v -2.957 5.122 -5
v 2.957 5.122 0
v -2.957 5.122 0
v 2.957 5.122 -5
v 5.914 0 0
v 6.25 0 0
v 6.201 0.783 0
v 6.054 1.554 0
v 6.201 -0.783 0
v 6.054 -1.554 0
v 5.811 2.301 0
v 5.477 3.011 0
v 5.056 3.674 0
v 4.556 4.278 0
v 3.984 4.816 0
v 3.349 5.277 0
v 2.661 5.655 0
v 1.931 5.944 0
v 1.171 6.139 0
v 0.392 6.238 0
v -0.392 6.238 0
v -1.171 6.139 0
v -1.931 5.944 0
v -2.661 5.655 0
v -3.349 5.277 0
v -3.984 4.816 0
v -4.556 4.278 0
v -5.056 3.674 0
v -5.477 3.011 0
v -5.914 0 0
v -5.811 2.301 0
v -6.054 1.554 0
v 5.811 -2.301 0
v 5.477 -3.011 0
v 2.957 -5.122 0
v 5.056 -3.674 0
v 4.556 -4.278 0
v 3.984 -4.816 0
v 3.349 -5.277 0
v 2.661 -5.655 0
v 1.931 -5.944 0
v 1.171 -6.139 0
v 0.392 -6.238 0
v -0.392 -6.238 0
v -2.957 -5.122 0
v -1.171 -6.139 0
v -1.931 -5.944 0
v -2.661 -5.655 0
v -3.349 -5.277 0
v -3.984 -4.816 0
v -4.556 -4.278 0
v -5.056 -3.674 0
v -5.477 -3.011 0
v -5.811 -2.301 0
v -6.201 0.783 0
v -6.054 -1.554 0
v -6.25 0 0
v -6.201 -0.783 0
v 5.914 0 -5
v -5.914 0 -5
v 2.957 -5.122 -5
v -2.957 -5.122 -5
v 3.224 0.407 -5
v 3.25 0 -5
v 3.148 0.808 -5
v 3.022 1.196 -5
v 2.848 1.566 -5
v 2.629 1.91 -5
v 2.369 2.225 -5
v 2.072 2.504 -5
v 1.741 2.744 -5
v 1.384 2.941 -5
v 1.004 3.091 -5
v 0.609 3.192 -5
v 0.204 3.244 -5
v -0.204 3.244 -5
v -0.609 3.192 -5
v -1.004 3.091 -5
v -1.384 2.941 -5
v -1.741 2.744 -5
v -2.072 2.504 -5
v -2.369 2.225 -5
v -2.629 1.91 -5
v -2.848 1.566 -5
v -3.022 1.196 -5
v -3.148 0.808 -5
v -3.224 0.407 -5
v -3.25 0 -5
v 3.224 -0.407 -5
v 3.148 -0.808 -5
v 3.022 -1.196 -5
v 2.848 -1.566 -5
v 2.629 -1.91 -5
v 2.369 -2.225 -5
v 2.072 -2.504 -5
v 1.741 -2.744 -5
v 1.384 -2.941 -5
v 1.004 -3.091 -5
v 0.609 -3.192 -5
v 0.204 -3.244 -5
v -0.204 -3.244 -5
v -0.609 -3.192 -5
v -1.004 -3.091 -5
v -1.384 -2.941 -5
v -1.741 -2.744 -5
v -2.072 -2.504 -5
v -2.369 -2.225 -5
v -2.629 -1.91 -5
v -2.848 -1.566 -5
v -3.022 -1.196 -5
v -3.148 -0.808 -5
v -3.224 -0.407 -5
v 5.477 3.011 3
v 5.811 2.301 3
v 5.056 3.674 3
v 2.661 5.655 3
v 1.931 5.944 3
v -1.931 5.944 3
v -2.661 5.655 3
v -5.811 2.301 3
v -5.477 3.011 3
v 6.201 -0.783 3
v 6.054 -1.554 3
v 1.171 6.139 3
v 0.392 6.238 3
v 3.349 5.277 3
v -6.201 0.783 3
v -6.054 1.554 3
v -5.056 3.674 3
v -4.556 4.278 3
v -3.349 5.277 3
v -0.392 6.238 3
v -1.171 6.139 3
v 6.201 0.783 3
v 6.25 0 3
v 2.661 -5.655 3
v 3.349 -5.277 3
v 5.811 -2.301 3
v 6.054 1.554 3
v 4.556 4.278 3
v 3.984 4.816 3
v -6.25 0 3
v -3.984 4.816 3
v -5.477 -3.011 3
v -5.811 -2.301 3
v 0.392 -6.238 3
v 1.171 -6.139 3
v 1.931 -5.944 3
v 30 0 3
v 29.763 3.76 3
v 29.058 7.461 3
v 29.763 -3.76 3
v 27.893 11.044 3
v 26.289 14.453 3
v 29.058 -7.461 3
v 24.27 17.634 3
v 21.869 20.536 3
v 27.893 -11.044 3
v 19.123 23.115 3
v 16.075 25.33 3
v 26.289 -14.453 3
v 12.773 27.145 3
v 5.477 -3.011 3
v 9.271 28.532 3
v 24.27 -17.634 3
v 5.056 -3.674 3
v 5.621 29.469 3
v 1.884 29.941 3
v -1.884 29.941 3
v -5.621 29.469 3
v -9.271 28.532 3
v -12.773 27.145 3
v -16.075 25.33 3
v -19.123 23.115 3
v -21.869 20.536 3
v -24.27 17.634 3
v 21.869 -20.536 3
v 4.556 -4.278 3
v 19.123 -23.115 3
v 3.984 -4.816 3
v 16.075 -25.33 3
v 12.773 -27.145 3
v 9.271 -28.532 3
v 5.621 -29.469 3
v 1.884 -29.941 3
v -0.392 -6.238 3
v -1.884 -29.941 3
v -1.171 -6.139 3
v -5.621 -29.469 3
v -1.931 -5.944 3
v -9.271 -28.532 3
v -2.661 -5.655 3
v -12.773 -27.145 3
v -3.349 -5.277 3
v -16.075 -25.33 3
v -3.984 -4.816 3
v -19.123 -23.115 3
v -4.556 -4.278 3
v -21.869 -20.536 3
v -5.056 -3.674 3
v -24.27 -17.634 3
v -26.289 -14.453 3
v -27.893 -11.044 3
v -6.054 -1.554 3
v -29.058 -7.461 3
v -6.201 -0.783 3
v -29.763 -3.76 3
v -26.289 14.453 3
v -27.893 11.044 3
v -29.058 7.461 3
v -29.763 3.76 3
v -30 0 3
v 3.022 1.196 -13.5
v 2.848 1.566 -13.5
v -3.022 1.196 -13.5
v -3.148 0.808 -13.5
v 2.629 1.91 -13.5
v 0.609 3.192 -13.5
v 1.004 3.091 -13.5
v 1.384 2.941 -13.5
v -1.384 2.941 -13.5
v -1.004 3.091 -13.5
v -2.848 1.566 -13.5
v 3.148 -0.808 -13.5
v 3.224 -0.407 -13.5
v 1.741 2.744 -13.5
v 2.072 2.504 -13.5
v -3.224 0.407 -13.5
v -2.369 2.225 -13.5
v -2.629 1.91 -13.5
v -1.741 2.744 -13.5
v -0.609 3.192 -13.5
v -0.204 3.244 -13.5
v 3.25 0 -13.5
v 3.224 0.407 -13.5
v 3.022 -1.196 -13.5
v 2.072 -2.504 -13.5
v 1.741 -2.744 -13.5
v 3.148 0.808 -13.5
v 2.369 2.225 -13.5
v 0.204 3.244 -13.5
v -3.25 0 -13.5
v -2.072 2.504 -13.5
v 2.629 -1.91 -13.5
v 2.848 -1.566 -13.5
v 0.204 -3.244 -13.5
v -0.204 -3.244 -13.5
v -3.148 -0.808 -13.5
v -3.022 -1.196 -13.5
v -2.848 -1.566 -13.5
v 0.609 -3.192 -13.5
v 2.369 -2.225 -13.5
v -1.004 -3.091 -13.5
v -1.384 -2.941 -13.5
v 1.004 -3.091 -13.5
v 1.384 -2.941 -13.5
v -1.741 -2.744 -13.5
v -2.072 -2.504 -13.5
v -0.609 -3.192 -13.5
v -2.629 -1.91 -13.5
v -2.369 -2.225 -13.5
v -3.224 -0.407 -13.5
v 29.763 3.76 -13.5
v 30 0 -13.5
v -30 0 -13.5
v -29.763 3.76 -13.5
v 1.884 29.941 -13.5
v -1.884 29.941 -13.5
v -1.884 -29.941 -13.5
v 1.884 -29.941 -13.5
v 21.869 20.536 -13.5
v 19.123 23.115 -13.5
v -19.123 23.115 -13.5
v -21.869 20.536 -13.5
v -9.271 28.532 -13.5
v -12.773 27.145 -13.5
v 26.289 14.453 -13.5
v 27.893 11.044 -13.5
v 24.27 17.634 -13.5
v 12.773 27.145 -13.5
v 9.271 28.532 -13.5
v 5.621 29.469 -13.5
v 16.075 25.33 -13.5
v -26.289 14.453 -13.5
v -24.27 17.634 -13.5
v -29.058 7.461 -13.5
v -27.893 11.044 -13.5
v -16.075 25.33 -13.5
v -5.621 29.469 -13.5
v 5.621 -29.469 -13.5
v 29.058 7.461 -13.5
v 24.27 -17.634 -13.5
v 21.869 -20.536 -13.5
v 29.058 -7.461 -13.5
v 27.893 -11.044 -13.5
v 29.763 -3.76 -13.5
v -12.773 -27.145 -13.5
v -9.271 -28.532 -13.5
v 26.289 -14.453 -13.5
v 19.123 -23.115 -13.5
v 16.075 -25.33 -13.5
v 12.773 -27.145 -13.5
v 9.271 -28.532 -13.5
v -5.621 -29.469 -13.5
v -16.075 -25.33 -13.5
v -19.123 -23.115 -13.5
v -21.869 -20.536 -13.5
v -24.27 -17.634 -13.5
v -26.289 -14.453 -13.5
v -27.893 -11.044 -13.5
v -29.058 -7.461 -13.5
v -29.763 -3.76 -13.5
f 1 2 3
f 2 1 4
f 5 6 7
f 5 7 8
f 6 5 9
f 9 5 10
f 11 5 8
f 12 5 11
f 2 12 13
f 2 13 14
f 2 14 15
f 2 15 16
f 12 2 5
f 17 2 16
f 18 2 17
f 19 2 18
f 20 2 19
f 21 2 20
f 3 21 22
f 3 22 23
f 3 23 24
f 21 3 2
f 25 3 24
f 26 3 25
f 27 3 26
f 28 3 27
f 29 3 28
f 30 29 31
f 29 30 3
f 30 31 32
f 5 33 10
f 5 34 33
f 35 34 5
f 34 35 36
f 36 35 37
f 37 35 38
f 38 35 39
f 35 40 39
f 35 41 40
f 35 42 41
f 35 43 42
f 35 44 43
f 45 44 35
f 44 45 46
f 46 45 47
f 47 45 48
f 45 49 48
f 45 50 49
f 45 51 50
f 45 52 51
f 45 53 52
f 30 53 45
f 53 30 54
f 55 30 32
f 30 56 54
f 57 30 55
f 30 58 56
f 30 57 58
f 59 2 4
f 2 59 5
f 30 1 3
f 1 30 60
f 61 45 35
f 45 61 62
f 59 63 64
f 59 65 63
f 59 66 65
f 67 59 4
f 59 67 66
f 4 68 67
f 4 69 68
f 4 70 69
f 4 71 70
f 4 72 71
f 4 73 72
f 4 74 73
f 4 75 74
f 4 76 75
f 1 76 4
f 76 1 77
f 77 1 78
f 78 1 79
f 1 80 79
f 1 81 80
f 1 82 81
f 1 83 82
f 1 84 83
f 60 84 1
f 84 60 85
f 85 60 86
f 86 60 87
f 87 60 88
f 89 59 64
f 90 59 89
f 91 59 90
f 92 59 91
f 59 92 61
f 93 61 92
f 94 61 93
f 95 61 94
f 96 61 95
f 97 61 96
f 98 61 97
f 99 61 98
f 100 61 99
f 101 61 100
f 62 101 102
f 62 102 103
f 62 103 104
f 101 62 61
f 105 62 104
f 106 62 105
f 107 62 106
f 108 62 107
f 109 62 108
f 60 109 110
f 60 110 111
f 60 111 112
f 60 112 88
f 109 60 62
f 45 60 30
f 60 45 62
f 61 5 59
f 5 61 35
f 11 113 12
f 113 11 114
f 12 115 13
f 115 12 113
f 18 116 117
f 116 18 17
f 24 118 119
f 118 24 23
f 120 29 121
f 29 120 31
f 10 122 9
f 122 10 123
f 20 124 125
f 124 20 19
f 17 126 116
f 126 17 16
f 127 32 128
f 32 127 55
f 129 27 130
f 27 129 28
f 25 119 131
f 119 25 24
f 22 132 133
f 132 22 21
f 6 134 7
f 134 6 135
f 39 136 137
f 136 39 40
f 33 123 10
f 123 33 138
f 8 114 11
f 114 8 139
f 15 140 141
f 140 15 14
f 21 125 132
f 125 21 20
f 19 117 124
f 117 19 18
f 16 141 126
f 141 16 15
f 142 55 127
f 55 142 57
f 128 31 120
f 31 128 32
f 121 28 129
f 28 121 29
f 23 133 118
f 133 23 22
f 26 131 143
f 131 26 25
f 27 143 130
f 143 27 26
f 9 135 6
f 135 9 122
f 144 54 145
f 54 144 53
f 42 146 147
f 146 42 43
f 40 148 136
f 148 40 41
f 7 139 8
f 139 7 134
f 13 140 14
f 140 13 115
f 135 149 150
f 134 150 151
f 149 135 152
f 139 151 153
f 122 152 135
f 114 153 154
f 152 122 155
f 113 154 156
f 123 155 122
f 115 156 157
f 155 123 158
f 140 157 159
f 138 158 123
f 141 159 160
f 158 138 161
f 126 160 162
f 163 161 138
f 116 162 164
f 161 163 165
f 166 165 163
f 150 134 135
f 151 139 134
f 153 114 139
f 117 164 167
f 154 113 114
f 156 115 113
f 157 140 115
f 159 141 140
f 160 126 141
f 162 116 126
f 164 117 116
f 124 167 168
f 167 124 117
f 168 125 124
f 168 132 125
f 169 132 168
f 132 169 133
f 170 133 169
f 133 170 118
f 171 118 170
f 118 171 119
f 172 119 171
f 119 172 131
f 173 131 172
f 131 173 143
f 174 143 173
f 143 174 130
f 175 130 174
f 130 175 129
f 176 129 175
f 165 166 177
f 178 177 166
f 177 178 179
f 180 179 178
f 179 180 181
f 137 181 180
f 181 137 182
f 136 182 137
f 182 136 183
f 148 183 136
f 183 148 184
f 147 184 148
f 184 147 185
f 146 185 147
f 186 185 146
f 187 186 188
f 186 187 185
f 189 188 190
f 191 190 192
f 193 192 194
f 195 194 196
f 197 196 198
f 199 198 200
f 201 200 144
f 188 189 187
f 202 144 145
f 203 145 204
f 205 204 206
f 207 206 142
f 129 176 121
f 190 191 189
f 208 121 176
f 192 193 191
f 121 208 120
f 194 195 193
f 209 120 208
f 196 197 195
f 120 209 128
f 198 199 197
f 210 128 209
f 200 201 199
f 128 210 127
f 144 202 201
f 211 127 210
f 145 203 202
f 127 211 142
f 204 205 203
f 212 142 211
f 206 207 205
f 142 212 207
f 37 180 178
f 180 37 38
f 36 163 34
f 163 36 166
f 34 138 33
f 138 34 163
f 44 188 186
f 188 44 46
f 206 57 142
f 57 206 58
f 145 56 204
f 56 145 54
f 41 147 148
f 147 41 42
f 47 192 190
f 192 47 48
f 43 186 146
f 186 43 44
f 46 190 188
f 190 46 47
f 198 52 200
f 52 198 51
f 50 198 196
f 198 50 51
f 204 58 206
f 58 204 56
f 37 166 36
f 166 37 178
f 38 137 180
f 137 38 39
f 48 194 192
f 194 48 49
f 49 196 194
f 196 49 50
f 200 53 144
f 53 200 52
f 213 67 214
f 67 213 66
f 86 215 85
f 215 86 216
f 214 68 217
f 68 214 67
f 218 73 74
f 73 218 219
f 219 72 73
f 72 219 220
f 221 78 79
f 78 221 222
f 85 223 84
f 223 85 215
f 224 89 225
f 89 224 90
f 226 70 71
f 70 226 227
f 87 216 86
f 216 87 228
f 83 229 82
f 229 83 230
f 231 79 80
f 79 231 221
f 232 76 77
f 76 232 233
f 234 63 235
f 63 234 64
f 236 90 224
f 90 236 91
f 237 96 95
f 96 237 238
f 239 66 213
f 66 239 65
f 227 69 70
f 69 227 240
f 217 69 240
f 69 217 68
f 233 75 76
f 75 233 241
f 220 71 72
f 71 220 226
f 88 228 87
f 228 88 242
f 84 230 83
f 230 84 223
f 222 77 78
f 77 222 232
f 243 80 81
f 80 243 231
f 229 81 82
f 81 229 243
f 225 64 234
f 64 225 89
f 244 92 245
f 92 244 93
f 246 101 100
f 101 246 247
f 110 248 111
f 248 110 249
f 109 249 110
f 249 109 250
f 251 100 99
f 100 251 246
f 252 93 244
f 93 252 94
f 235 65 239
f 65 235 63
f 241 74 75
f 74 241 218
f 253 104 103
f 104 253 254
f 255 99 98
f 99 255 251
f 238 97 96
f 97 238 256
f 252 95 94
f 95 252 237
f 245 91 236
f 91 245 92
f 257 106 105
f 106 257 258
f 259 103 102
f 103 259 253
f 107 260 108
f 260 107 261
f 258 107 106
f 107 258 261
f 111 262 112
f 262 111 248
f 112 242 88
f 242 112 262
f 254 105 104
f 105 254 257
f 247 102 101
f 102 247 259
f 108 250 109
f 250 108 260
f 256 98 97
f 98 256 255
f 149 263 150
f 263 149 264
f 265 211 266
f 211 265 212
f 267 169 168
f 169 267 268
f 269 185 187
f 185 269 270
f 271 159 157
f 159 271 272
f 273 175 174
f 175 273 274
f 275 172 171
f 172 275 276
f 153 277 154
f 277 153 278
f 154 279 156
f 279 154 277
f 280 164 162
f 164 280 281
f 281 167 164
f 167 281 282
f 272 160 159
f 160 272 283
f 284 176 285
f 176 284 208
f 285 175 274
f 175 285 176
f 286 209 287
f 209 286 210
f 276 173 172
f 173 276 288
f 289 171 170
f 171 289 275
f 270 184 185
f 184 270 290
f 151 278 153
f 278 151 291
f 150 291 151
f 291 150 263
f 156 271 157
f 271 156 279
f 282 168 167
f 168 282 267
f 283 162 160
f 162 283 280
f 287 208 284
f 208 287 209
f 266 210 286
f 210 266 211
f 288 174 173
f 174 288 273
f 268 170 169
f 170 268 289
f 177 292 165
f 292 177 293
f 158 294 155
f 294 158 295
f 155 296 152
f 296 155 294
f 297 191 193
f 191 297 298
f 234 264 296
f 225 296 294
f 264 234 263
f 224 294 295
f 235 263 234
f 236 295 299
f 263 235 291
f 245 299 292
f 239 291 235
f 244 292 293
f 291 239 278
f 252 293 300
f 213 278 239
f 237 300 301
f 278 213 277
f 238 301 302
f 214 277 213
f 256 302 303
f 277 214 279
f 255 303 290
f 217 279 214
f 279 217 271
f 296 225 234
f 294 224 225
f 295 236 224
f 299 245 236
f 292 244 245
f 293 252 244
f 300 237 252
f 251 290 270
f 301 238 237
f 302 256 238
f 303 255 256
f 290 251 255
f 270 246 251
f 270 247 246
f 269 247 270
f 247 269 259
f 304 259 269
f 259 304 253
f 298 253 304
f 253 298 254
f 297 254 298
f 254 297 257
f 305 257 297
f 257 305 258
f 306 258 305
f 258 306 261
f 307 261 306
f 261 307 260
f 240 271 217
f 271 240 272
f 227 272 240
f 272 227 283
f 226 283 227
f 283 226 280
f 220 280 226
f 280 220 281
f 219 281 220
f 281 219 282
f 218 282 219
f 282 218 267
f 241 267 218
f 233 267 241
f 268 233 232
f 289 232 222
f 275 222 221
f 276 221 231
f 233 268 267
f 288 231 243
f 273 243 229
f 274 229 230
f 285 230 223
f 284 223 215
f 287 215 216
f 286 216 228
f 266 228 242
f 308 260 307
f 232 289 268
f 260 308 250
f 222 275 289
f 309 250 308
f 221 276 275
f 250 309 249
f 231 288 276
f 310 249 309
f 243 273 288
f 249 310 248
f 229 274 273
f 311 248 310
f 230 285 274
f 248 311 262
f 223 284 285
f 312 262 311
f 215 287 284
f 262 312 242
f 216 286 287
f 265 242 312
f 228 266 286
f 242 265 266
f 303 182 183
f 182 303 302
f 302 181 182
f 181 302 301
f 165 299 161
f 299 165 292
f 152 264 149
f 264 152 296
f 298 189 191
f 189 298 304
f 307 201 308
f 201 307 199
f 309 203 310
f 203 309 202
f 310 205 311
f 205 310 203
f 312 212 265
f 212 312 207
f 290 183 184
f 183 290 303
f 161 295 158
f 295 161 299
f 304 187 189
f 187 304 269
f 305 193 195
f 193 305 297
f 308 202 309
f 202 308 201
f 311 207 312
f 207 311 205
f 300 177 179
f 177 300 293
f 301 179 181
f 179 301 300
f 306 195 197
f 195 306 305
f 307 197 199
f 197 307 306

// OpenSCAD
$fn = 50;

difference() {
	union() {
		translate(v = [0, 0, -13.5]) {
			cylinder(h = 16.5, r = 30.0);
		}
	}
	union() {
		translate(v = [0, 0, 0]) {
			rotate(a = [0, 0, 0]) {
				difference() {
					union() {
						translate(v = [0, 0, -5]) {
							linear_extrude(height = 5) {
								polygon(points = [[5.914249999999999, 0.0], [2.957125, 5.1218907443321156], [-2.9571249999999982, 5.1218907443321156], [-5.914249999999999, 7.242867331857232e-16], [-2.9571250000000022, -5.121890744332115], [2.9571249999999956, -5.121890744332118]]);
							}
						}
					}
					union();
				}
			}
		}
		#cylinder(h = 3, r = 6.25);
		#translate(v = [0, 0, -100.0]) {
			cylinder(h = 200, r = 3.25);
		}
	}
}
